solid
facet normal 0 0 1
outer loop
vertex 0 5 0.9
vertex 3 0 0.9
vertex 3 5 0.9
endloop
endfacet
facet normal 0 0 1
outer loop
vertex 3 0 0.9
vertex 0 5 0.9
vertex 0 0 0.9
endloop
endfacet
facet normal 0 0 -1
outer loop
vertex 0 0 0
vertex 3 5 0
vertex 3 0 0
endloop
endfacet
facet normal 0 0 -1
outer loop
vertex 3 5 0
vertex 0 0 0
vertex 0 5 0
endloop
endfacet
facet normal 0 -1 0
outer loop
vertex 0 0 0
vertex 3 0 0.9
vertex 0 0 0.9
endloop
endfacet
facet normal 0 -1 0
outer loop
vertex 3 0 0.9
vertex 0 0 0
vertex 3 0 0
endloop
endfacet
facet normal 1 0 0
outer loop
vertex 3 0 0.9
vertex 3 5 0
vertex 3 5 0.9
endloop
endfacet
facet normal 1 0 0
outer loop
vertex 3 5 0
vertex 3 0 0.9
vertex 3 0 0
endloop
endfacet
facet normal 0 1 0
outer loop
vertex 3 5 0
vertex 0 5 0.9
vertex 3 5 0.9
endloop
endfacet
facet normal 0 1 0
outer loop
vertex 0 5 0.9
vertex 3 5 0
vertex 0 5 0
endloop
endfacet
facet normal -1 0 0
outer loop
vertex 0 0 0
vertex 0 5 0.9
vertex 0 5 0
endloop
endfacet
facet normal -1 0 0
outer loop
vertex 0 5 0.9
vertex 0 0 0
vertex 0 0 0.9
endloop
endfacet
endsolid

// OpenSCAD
/* Warning, this is a very basic generator with a lot of approximation 
input data : [VQFN, NRA, 3x5x0.9mm, 26, , A, C04-01253A]
generated by com.zoubworld.electronics.cad.model3d.Basic
Date : Sun Feb 15 10:50:49 CET 2026
*/

//body
color("black")
translate([0,0,0])
cube([3.0,5.0,0.9], center=false);
